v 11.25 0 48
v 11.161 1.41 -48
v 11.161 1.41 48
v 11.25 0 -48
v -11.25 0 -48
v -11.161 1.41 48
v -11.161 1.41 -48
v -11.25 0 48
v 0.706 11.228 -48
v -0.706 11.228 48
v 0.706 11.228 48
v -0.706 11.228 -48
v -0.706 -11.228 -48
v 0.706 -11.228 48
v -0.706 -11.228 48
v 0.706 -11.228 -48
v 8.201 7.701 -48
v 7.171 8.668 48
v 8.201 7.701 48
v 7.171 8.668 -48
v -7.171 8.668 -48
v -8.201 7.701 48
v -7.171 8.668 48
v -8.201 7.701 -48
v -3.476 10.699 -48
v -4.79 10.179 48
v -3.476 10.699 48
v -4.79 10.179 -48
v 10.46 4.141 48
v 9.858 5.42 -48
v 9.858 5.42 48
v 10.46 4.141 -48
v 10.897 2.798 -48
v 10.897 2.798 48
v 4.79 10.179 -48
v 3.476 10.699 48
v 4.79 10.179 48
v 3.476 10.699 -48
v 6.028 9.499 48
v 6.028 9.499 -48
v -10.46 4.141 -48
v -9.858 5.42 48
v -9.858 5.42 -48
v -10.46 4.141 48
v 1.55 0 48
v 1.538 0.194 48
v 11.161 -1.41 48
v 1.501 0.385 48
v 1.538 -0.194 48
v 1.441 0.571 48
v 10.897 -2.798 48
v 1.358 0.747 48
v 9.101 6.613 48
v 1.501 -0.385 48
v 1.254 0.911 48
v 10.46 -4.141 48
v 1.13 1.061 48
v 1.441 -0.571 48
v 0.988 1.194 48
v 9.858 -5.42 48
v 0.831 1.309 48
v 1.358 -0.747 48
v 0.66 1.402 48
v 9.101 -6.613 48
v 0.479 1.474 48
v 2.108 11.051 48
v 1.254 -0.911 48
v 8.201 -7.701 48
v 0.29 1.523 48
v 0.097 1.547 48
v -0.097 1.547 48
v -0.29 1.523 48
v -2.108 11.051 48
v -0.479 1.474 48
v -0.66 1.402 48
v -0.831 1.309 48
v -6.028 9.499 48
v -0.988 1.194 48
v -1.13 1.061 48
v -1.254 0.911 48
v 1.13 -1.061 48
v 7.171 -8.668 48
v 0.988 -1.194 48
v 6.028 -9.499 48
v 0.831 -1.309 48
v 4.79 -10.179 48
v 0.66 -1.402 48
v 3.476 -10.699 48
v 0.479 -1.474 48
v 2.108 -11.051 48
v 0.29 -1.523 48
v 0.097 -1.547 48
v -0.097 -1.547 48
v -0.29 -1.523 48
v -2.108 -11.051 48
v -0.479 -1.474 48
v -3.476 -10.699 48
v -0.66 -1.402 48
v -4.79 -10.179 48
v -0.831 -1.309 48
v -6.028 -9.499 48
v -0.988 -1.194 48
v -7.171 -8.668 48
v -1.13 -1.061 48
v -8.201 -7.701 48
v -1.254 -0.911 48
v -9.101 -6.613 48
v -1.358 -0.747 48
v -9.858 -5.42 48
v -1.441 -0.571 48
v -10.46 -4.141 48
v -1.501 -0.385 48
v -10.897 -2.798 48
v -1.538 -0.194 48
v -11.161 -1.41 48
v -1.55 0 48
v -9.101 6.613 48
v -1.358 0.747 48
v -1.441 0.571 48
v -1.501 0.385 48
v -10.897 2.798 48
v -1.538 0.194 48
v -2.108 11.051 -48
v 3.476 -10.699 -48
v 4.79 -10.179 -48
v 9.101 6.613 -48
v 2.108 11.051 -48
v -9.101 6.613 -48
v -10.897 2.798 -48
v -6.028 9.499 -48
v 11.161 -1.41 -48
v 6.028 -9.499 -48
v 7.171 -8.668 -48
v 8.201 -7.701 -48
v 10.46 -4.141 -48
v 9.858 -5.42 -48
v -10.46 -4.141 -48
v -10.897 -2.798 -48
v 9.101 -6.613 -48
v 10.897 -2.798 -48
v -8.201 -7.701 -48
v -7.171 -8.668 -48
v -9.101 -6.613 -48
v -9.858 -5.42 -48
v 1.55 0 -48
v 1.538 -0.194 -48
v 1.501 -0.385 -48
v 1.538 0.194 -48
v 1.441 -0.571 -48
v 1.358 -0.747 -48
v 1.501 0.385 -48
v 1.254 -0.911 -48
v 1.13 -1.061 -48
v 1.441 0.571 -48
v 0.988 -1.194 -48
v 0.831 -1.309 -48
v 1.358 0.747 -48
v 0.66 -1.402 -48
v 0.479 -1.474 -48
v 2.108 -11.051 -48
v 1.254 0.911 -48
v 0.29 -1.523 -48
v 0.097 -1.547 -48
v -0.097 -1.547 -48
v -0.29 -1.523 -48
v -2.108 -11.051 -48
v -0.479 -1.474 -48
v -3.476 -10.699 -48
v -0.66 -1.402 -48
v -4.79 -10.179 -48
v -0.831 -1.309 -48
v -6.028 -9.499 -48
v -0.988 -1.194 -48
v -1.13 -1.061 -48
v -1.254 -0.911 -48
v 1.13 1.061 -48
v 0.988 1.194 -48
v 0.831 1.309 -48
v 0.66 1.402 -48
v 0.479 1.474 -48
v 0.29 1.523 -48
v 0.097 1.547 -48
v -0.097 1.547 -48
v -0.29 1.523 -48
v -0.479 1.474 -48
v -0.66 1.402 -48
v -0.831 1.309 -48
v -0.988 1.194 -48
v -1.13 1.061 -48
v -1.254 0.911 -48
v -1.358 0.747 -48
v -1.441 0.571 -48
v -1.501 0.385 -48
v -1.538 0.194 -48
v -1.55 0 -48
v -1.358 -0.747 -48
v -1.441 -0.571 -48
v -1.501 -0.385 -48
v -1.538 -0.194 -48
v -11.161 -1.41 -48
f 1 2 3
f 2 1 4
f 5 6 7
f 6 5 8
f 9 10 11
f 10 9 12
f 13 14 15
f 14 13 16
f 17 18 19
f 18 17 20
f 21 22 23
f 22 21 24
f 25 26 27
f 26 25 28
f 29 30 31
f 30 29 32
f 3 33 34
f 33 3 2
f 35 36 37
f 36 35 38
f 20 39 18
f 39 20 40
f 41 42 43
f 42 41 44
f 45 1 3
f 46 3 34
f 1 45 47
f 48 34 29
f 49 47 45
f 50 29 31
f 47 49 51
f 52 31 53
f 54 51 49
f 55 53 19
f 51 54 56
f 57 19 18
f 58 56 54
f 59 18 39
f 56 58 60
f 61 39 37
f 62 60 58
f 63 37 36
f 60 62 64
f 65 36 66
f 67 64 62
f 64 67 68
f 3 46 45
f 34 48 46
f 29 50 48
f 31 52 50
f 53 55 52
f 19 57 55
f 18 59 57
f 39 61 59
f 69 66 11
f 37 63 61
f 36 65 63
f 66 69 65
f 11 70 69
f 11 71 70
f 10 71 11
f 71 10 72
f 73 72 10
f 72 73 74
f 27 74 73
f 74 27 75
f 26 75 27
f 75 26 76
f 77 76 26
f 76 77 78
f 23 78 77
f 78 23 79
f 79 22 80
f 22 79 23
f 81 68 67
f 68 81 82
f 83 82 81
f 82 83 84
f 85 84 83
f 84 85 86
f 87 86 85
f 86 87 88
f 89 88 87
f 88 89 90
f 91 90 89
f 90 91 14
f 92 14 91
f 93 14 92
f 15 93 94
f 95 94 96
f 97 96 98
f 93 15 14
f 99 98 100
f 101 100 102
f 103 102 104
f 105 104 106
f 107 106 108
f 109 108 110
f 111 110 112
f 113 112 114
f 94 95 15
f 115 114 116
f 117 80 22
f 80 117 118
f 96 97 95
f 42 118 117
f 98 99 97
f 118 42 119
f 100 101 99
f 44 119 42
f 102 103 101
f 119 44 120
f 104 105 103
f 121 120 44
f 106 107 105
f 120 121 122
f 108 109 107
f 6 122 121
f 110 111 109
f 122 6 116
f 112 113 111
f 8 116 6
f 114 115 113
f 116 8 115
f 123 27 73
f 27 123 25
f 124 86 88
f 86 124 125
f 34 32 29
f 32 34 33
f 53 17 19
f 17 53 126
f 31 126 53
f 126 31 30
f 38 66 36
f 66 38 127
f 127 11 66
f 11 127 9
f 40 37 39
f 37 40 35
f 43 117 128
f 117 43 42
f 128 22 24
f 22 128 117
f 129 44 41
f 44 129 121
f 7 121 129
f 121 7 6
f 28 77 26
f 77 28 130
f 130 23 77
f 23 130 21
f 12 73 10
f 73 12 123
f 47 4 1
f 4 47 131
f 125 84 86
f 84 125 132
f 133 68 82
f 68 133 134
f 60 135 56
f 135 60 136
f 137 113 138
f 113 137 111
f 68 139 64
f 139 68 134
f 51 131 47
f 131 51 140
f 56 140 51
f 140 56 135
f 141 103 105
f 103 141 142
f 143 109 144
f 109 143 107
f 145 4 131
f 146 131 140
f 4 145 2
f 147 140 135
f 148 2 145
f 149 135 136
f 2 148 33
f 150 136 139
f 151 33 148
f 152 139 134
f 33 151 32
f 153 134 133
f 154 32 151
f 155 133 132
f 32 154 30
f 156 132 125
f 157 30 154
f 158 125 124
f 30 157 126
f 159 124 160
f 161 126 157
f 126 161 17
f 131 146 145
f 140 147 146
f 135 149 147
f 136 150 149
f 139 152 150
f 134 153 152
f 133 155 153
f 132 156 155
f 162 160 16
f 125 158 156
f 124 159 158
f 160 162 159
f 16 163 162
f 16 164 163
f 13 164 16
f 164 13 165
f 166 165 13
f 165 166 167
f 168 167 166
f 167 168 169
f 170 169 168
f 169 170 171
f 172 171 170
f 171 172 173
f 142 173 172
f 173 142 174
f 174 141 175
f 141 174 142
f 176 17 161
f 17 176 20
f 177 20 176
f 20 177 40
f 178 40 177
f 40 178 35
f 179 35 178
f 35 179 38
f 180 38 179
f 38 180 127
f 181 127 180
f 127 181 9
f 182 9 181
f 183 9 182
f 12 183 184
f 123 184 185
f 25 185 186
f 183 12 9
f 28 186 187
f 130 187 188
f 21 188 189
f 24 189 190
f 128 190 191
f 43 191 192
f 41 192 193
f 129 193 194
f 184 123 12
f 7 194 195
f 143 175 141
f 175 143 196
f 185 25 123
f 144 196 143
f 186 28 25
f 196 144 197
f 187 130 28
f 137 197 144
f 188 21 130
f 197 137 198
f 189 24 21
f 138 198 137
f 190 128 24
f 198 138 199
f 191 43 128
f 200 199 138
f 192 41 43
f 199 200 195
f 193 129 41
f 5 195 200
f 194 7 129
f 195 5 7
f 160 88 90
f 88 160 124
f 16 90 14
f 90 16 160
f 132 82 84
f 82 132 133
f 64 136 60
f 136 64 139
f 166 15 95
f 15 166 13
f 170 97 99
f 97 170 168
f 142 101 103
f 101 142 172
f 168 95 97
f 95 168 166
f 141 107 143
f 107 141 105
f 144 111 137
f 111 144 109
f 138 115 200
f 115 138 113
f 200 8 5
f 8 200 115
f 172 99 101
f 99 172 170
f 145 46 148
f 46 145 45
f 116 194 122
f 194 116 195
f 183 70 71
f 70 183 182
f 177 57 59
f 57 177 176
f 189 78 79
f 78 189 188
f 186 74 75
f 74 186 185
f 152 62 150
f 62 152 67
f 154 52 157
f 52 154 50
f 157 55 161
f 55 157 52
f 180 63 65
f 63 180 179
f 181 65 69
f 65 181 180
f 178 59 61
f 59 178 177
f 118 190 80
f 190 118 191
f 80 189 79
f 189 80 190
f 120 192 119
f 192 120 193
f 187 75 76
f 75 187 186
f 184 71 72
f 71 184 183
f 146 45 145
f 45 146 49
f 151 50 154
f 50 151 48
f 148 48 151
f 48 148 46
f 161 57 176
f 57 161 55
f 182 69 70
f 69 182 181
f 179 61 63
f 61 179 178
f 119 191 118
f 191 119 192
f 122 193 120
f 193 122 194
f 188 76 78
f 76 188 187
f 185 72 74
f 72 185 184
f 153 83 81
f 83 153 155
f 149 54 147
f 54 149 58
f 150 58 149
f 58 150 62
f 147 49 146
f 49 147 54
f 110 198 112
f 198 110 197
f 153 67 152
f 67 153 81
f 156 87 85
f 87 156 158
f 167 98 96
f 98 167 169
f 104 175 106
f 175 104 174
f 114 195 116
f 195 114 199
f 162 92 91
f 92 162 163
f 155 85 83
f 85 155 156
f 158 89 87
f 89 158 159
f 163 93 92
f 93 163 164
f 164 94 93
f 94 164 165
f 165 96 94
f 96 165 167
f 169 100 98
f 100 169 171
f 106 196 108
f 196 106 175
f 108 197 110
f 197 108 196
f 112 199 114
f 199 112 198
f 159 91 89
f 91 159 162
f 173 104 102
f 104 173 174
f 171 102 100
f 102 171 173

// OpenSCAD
$fn = 50;


difference() {
	union() {
		translate(v = [0, 0, -48.0000000000]) {
			cylinder(h = 96, r = 11.2500000000);
		}
	}
	union() {
		translate(v = [0, 0, -100.0000000000]) {
			cylinder(h = 200, r = 1.5500000000);
		}
	}
}
